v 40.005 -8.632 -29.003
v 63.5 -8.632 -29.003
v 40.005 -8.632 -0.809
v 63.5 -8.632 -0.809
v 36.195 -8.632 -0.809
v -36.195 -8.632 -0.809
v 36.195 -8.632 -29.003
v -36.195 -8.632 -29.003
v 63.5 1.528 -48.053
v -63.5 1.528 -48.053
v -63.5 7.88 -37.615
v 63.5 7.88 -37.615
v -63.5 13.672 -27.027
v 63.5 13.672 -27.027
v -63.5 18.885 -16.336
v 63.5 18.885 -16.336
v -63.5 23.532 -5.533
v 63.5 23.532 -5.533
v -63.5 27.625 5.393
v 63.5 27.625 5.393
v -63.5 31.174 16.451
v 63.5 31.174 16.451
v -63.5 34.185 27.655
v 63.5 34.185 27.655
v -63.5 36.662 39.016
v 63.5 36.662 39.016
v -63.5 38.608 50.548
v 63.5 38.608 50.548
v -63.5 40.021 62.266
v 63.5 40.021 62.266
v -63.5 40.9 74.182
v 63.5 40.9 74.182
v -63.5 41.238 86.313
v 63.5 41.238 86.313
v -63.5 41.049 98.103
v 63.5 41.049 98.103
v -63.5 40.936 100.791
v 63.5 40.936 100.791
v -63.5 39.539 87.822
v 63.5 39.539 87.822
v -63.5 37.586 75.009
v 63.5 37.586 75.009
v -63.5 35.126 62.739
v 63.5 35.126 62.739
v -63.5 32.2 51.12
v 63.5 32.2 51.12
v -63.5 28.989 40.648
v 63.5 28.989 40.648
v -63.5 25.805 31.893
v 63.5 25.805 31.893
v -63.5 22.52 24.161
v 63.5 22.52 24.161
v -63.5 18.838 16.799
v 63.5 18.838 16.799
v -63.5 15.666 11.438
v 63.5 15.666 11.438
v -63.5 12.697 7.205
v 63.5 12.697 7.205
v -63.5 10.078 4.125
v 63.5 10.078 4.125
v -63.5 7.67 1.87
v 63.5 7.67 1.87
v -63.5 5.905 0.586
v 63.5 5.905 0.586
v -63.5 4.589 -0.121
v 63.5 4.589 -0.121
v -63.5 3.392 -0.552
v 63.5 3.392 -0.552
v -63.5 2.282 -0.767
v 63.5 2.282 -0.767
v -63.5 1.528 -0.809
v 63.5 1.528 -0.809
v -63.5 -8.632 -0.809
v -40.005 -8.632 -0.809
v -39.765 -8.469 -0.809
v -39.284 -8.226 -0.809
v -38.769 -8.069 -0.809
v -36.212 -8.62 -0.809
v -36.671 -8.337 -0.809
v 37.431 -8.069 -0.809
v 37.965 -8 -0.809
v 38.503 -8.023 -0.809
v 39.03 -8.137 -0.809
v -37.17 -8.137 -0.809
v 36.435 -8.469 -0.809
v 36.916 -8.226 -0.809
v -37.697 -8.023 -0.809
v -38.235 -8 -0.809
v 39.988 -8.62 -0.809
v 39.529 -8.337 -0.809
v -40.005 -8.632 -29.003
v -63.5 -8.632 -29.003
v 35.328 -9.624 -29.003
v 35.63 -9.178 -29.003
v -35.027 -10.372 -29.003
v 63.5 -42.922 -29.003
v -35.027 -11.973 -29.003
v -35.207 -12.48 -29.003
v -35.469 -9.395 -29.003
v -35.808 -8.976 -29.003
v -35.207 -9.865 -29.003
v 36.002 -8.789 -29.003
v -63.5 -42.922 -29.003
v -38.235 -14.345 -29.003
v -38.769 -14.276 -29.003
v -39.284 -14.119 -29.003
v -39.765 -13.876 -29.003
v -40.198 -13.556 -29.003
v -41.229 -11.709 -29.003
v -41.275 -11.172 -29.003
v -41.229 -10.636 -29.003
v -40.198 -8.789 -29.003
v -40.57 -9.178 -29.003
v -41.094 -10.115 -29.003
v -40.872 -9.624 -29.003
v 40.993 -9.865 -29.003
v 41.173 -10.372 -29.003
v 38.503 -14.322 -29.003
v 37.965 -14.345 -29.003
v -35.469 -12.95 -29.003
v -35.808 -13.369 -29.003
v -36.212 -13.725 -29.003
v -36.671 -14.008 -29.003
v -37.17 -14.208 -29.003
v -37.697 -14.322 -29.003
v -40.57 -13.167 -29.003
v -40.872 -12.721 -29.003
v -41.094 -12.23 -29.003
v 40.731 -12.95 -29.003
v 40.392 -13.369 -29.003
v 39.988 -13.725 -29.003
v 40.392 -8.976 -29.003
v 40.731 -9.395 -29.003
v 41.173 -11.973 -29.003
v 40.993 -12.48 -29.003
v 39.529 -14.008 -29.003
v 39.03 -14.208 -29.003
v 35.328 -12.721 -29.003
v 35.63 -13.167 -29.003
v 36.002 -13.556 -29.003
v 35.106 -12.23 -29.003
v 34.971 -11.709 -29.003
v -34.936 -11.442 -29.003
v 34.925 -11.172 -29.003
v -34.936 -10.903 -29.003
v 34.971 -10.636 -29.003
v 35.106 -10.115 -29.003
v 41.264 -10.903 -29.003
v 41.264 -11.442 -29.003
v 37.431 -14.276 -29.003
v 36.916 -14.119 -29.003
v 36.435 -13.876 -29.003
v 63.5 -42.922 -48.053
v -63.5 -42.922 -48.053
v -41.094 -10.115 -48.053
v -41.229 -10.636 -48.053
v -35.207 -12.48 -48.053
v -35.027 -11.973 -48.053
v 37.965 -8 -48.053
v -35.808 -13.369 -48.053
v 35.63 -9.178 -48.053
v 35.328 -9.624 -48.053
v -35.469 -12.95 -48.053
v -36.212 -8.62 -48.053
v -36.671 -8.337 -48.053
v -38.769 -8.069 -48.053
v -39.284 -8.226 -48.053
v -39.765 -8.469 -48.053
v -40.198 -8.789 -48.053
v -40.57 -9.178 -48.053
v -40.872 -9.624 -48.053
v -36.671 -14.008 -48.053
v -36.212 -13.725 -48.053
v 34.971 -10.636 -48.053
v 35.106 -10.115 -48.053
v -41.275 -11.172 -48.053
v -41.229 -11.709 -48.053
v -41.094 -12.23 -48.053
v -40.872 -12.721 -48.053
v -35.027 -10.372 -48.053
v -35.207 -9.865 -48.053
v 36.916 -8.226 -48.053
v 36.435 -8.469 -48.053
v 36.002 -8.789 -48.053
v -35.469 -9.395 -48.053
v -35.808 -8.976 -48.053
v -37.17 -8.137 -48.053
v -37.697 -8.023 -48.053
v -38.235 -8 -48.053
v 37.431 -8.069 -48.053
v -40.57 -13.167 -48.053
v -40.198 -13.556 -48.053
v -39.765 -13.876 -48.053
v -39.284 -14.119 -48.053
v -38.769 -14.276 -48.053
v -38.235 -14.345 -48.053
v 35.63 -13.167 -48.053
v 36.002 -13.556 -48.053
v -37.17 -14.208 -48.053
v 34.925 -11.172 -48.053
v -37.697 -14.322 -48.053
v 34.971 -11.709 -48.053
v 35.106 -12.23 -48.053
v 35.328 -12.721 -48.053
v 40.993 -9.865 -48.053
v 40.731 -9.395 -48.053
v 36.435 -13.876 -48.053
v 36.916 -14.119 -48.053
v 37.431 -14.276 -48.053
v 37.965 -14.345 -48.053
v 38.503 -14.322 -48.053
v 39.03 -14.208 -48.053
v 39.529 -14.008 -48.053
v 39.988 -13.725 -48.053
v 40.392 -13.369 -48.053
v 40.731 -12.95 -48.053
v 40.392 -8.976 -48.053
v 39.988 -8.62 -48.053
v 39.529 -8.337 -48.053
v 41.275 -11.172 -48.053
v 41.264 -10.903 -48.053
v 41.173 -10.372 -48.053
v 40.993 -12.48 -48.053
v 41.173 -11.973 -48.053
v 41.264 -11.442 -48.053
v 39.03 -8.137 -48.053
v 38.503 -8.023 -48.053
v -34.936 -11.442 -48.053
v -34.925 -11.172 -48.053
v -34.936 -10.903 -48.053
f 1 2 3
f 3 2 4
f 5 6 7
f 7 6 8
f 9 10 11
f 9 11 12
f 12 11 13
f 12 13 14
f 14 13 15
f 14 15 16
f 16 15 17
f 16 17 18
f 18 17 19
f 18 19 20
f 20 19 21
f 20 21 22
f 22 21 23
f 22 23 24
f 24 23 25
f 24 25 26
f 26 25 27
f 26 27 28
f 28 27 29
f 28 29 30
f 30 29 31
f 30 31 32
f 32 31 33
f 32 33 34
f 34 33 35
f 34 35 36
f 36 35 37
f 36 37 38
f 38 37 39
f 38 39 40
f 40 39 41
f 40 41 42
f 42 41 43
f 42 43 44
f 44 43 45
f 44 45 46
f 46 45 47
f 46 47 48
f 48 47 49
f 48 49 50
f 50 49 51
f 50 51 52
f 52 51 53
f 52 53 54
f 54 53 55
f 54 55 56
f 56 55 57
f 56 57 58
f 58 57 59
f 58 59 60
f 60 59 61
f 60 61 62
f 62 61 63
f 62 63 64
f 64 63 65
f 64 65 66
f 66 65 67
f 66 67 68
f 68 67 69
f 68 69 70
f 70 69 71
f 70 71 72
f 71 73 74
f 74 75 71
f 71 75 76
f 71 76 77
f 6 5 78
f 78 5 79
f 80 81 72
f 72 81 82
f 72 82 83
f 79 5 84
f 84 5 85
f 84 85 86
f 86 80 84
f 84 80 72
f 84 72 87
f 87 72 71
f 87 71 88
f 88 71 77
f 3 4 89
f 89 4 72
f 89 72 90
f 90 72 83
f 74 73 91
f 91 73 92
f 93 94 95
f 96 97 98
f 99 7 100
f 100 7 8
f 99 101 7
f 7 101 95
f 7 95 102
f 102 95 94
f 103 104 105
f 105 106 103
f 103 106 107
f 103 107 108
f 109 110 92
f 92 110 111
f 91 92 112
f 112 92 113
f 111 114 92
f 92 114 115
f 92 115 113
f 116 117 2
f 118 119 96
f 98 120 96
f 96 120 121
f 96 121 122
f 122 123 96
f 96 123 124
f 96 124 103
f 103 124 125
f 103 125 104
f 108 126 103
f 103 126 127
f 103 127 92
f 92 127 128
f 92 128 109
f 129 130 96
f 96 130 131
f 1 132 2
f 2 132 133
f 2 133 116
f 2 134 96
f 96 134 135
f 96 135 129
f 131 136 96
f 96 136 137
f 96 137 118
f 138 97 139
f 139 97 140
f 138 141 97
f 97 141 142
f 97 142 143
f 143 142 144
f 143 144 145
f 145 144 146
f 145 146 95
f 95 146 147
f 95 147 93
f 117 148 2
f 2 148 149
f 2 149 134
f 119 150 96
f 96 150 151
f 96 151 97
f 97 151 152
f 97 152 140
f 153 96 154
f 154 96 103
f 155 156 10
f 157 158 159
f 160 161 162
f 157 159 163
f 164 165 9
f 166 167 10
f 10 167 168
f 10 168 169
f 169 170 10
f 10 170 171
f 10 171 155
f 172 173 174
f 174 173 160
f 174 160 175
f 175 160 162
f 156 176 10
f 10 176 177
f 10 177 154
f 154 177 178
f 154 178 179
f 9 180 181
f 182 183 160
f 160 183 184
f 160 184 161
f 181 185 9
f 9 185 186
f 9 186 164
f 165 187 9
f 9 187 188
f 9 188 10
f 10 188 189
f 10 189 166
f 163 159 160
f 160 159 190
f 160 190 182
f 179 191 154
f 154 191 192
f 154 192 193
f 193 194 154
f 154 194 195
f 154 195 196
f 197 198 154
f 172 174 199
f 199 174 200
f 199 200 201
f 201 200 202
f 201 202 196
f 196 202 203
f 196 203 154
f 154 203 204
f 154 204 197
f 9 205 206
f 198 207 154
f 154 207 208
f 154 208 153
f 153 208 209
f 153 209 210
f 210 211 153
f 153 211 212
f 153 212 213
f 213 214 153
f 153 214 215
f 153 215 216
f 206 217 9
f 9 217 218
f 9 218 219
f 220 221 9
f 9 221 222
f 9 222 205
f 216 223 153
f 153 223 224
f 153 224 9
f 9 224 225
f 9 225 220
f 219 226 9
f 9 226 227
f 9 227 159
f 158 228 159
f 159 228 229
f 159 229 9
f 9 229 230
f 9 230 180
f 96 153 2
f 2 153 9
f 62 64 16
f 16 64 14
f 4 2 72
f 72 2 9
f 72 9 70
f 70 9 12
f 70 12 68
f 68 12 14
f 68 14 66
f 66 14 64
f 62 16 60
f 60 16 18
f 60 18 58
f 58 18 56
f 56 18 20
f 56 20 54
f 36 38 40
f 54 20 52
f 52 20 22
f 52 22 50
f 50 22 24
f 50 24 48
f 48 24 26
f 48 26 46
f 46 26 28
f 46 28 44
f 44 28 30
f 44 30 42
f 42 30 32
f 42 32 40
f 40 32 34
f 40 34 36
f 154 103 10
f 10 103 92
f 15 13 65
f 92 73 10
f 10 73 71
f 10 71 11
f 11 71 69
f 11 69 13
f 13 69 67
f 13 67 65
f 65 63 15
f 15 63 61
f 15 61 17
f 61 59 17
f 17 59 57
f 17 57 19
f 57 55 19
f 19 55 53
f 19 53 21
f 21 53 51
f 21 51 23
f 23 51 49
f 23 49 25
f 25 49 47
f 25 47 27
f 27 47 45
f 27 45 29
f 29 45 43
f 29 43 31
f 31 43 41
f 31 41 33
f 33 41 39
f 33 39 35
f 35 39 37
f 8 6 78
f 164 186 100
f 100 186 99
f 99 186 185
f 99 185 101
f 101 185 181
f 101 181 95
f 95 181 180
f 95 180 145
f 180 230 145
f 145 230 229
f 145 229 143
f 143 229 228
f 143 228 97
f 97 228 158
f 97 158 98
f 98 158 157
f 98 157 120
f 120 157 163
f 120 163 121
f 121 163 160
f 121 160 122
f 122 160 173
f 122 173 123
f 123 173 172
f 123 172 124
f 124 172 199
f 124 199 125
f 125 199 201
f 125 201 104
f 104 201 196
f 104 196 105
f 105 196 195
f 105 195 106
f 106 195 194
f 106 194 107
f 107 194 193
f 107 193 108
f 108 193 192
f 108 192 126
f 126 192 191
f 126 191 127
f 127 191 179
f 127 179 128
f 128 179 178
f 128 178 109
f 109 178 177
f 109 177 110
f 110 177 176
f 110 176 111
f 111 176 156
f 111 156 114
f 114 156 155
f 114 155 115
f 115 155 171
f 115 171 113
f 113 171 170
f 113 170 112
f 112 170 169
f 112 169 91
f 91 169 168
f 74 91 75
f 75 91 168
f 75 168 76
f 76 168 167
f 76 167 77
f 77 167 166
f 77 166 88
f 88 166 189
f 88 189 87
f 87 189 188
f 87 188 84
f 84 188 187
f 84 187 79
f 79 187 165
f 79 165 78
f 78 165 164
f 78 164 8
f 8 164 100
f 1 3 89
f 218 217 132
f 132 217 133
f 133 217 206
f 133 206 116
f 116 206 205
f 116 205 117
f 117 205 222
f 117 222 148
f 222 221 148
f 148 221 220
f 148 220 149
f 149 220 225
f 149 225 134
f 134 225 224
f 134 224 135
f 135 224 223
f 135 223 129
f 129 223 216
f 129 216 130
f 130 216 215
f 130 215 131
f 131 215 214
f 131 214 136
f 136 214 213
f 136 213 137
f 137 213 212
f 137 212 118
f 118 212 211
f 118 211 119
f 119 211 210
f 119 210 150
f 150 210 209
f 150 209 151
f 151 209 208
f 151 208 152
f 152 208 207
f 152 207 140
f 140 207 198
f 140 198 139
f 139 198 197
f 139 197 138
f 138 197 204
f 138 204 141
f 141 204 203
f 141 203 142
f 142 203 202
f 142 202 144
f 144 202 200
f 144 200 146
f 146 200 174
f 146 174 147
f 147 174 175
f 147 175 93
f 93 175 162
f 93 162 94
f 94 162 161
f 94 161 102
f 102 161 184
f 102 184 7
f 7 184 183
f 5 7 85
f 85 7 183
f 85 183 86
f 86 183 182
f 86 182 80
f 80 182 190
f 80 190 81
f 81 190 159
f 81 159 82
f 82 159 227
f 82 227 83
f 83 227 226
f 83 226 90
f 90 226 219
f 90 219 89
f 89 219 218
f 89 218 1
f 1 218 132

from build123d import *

# Parameters (mm, degrees)
BOSS_EXTRUDE1_DEPTH     = 63.5
CUT_EXTRUDE1_DEPTH      = 168.419011538
CUT_EXTRUDE1_DEPTH_BACK = 168.419011538
SKETCH2_R               = 3.175


with BuildPart() as part:
    # Sketch1 → Boss-Extrude1 (new, symmetric)
    with BuildSketch(Plane(origin=(0, 0, 0), x_dir=(0, 0, -1), z_dir=(1, 0, 0))):
        with BuildLine():
            Line((0.809260665, 1.527522938), (0.809260665, -8.632477062))
            Line((0.809260665, -8.632477062), (29.003260665, -8.632477062))
            Line((29.003260665, -8.632477062), (29.003260665, -42.922477062))
            Line((29.003260665, -42.922477062), (48.053260665, -42.922477062))
            Line((48.053260665, -42.922477062), (48.053260665, 1.527522938))
            add(Edge.make_bspline(
                [(-100.790739335, 40.936245598), (-19.432334381, 44.723152192), (48.053260665, 1.527522938)],
                knots=[0, 0, 0, 1, 1, 1], degree=2))
            add(Edge.make_bspline(
                [(-100.790739335, 40.936245598), (-95.812000817, 40.506536715), (-85.404095735, 39.35609048), (-70.04704926, 36.825372047), (-55.204457945, 33.455234316), (-41.848670928, 29.540032245), (-30.135862863, 25.255462099), (-20.192126341, 20.775035432), (-12.11168478, 16.271531389), (-5.930472237, 11.904209881), (-1.681652897, 7.768063044), (0.491896357, 4.287160304), (0.81175974, 2.163002008), (0.809260665, 1.527522938)],
                knots=[0.35379081, 0.35379081, 0.35379081, 0.35379081, 0.374279703, 0.396711254, 0.417576734, 0.436654006, 0.45374439, 0.468679994, 0.481329415, 0.491630702, 0.499615789, 0.505546281, 0.508115399, 0.508115399, 0.508115399, 0.508115399], degree=3))
        make_face()
    extrude(amount=BOSS_EXTRUDE1_DEPTH, both=True)

    # Sketch2 → Cut-Extrude1 (cut, two sides: drawn at the far end of the back side and taken through both)
    with BuildSketch(Plane(origin=(0, 0, -48.053260665), x_dir=(-1, 0, 0), z_dir=(0, 0, -1)).offset(-CUT_EXTRUDE1_DEPTH_BACK)):
        with Locations(Location((-38.1, -11.172477062, 0), (0, 0, 53.130102354))):
            Circle(SKETCH2_R)
        with Locations(Location((38.1, -11.172477062, 0), (0, 0, 53.130102354))):
            Circle(SKETCH2_R)
    extrude(amount=CUT_EXTRUDE1_DEPTH + CUT_EXTRUDE1_DEPTH_BACK, mode=Mode.SUBTRACT)


solid = part.part
